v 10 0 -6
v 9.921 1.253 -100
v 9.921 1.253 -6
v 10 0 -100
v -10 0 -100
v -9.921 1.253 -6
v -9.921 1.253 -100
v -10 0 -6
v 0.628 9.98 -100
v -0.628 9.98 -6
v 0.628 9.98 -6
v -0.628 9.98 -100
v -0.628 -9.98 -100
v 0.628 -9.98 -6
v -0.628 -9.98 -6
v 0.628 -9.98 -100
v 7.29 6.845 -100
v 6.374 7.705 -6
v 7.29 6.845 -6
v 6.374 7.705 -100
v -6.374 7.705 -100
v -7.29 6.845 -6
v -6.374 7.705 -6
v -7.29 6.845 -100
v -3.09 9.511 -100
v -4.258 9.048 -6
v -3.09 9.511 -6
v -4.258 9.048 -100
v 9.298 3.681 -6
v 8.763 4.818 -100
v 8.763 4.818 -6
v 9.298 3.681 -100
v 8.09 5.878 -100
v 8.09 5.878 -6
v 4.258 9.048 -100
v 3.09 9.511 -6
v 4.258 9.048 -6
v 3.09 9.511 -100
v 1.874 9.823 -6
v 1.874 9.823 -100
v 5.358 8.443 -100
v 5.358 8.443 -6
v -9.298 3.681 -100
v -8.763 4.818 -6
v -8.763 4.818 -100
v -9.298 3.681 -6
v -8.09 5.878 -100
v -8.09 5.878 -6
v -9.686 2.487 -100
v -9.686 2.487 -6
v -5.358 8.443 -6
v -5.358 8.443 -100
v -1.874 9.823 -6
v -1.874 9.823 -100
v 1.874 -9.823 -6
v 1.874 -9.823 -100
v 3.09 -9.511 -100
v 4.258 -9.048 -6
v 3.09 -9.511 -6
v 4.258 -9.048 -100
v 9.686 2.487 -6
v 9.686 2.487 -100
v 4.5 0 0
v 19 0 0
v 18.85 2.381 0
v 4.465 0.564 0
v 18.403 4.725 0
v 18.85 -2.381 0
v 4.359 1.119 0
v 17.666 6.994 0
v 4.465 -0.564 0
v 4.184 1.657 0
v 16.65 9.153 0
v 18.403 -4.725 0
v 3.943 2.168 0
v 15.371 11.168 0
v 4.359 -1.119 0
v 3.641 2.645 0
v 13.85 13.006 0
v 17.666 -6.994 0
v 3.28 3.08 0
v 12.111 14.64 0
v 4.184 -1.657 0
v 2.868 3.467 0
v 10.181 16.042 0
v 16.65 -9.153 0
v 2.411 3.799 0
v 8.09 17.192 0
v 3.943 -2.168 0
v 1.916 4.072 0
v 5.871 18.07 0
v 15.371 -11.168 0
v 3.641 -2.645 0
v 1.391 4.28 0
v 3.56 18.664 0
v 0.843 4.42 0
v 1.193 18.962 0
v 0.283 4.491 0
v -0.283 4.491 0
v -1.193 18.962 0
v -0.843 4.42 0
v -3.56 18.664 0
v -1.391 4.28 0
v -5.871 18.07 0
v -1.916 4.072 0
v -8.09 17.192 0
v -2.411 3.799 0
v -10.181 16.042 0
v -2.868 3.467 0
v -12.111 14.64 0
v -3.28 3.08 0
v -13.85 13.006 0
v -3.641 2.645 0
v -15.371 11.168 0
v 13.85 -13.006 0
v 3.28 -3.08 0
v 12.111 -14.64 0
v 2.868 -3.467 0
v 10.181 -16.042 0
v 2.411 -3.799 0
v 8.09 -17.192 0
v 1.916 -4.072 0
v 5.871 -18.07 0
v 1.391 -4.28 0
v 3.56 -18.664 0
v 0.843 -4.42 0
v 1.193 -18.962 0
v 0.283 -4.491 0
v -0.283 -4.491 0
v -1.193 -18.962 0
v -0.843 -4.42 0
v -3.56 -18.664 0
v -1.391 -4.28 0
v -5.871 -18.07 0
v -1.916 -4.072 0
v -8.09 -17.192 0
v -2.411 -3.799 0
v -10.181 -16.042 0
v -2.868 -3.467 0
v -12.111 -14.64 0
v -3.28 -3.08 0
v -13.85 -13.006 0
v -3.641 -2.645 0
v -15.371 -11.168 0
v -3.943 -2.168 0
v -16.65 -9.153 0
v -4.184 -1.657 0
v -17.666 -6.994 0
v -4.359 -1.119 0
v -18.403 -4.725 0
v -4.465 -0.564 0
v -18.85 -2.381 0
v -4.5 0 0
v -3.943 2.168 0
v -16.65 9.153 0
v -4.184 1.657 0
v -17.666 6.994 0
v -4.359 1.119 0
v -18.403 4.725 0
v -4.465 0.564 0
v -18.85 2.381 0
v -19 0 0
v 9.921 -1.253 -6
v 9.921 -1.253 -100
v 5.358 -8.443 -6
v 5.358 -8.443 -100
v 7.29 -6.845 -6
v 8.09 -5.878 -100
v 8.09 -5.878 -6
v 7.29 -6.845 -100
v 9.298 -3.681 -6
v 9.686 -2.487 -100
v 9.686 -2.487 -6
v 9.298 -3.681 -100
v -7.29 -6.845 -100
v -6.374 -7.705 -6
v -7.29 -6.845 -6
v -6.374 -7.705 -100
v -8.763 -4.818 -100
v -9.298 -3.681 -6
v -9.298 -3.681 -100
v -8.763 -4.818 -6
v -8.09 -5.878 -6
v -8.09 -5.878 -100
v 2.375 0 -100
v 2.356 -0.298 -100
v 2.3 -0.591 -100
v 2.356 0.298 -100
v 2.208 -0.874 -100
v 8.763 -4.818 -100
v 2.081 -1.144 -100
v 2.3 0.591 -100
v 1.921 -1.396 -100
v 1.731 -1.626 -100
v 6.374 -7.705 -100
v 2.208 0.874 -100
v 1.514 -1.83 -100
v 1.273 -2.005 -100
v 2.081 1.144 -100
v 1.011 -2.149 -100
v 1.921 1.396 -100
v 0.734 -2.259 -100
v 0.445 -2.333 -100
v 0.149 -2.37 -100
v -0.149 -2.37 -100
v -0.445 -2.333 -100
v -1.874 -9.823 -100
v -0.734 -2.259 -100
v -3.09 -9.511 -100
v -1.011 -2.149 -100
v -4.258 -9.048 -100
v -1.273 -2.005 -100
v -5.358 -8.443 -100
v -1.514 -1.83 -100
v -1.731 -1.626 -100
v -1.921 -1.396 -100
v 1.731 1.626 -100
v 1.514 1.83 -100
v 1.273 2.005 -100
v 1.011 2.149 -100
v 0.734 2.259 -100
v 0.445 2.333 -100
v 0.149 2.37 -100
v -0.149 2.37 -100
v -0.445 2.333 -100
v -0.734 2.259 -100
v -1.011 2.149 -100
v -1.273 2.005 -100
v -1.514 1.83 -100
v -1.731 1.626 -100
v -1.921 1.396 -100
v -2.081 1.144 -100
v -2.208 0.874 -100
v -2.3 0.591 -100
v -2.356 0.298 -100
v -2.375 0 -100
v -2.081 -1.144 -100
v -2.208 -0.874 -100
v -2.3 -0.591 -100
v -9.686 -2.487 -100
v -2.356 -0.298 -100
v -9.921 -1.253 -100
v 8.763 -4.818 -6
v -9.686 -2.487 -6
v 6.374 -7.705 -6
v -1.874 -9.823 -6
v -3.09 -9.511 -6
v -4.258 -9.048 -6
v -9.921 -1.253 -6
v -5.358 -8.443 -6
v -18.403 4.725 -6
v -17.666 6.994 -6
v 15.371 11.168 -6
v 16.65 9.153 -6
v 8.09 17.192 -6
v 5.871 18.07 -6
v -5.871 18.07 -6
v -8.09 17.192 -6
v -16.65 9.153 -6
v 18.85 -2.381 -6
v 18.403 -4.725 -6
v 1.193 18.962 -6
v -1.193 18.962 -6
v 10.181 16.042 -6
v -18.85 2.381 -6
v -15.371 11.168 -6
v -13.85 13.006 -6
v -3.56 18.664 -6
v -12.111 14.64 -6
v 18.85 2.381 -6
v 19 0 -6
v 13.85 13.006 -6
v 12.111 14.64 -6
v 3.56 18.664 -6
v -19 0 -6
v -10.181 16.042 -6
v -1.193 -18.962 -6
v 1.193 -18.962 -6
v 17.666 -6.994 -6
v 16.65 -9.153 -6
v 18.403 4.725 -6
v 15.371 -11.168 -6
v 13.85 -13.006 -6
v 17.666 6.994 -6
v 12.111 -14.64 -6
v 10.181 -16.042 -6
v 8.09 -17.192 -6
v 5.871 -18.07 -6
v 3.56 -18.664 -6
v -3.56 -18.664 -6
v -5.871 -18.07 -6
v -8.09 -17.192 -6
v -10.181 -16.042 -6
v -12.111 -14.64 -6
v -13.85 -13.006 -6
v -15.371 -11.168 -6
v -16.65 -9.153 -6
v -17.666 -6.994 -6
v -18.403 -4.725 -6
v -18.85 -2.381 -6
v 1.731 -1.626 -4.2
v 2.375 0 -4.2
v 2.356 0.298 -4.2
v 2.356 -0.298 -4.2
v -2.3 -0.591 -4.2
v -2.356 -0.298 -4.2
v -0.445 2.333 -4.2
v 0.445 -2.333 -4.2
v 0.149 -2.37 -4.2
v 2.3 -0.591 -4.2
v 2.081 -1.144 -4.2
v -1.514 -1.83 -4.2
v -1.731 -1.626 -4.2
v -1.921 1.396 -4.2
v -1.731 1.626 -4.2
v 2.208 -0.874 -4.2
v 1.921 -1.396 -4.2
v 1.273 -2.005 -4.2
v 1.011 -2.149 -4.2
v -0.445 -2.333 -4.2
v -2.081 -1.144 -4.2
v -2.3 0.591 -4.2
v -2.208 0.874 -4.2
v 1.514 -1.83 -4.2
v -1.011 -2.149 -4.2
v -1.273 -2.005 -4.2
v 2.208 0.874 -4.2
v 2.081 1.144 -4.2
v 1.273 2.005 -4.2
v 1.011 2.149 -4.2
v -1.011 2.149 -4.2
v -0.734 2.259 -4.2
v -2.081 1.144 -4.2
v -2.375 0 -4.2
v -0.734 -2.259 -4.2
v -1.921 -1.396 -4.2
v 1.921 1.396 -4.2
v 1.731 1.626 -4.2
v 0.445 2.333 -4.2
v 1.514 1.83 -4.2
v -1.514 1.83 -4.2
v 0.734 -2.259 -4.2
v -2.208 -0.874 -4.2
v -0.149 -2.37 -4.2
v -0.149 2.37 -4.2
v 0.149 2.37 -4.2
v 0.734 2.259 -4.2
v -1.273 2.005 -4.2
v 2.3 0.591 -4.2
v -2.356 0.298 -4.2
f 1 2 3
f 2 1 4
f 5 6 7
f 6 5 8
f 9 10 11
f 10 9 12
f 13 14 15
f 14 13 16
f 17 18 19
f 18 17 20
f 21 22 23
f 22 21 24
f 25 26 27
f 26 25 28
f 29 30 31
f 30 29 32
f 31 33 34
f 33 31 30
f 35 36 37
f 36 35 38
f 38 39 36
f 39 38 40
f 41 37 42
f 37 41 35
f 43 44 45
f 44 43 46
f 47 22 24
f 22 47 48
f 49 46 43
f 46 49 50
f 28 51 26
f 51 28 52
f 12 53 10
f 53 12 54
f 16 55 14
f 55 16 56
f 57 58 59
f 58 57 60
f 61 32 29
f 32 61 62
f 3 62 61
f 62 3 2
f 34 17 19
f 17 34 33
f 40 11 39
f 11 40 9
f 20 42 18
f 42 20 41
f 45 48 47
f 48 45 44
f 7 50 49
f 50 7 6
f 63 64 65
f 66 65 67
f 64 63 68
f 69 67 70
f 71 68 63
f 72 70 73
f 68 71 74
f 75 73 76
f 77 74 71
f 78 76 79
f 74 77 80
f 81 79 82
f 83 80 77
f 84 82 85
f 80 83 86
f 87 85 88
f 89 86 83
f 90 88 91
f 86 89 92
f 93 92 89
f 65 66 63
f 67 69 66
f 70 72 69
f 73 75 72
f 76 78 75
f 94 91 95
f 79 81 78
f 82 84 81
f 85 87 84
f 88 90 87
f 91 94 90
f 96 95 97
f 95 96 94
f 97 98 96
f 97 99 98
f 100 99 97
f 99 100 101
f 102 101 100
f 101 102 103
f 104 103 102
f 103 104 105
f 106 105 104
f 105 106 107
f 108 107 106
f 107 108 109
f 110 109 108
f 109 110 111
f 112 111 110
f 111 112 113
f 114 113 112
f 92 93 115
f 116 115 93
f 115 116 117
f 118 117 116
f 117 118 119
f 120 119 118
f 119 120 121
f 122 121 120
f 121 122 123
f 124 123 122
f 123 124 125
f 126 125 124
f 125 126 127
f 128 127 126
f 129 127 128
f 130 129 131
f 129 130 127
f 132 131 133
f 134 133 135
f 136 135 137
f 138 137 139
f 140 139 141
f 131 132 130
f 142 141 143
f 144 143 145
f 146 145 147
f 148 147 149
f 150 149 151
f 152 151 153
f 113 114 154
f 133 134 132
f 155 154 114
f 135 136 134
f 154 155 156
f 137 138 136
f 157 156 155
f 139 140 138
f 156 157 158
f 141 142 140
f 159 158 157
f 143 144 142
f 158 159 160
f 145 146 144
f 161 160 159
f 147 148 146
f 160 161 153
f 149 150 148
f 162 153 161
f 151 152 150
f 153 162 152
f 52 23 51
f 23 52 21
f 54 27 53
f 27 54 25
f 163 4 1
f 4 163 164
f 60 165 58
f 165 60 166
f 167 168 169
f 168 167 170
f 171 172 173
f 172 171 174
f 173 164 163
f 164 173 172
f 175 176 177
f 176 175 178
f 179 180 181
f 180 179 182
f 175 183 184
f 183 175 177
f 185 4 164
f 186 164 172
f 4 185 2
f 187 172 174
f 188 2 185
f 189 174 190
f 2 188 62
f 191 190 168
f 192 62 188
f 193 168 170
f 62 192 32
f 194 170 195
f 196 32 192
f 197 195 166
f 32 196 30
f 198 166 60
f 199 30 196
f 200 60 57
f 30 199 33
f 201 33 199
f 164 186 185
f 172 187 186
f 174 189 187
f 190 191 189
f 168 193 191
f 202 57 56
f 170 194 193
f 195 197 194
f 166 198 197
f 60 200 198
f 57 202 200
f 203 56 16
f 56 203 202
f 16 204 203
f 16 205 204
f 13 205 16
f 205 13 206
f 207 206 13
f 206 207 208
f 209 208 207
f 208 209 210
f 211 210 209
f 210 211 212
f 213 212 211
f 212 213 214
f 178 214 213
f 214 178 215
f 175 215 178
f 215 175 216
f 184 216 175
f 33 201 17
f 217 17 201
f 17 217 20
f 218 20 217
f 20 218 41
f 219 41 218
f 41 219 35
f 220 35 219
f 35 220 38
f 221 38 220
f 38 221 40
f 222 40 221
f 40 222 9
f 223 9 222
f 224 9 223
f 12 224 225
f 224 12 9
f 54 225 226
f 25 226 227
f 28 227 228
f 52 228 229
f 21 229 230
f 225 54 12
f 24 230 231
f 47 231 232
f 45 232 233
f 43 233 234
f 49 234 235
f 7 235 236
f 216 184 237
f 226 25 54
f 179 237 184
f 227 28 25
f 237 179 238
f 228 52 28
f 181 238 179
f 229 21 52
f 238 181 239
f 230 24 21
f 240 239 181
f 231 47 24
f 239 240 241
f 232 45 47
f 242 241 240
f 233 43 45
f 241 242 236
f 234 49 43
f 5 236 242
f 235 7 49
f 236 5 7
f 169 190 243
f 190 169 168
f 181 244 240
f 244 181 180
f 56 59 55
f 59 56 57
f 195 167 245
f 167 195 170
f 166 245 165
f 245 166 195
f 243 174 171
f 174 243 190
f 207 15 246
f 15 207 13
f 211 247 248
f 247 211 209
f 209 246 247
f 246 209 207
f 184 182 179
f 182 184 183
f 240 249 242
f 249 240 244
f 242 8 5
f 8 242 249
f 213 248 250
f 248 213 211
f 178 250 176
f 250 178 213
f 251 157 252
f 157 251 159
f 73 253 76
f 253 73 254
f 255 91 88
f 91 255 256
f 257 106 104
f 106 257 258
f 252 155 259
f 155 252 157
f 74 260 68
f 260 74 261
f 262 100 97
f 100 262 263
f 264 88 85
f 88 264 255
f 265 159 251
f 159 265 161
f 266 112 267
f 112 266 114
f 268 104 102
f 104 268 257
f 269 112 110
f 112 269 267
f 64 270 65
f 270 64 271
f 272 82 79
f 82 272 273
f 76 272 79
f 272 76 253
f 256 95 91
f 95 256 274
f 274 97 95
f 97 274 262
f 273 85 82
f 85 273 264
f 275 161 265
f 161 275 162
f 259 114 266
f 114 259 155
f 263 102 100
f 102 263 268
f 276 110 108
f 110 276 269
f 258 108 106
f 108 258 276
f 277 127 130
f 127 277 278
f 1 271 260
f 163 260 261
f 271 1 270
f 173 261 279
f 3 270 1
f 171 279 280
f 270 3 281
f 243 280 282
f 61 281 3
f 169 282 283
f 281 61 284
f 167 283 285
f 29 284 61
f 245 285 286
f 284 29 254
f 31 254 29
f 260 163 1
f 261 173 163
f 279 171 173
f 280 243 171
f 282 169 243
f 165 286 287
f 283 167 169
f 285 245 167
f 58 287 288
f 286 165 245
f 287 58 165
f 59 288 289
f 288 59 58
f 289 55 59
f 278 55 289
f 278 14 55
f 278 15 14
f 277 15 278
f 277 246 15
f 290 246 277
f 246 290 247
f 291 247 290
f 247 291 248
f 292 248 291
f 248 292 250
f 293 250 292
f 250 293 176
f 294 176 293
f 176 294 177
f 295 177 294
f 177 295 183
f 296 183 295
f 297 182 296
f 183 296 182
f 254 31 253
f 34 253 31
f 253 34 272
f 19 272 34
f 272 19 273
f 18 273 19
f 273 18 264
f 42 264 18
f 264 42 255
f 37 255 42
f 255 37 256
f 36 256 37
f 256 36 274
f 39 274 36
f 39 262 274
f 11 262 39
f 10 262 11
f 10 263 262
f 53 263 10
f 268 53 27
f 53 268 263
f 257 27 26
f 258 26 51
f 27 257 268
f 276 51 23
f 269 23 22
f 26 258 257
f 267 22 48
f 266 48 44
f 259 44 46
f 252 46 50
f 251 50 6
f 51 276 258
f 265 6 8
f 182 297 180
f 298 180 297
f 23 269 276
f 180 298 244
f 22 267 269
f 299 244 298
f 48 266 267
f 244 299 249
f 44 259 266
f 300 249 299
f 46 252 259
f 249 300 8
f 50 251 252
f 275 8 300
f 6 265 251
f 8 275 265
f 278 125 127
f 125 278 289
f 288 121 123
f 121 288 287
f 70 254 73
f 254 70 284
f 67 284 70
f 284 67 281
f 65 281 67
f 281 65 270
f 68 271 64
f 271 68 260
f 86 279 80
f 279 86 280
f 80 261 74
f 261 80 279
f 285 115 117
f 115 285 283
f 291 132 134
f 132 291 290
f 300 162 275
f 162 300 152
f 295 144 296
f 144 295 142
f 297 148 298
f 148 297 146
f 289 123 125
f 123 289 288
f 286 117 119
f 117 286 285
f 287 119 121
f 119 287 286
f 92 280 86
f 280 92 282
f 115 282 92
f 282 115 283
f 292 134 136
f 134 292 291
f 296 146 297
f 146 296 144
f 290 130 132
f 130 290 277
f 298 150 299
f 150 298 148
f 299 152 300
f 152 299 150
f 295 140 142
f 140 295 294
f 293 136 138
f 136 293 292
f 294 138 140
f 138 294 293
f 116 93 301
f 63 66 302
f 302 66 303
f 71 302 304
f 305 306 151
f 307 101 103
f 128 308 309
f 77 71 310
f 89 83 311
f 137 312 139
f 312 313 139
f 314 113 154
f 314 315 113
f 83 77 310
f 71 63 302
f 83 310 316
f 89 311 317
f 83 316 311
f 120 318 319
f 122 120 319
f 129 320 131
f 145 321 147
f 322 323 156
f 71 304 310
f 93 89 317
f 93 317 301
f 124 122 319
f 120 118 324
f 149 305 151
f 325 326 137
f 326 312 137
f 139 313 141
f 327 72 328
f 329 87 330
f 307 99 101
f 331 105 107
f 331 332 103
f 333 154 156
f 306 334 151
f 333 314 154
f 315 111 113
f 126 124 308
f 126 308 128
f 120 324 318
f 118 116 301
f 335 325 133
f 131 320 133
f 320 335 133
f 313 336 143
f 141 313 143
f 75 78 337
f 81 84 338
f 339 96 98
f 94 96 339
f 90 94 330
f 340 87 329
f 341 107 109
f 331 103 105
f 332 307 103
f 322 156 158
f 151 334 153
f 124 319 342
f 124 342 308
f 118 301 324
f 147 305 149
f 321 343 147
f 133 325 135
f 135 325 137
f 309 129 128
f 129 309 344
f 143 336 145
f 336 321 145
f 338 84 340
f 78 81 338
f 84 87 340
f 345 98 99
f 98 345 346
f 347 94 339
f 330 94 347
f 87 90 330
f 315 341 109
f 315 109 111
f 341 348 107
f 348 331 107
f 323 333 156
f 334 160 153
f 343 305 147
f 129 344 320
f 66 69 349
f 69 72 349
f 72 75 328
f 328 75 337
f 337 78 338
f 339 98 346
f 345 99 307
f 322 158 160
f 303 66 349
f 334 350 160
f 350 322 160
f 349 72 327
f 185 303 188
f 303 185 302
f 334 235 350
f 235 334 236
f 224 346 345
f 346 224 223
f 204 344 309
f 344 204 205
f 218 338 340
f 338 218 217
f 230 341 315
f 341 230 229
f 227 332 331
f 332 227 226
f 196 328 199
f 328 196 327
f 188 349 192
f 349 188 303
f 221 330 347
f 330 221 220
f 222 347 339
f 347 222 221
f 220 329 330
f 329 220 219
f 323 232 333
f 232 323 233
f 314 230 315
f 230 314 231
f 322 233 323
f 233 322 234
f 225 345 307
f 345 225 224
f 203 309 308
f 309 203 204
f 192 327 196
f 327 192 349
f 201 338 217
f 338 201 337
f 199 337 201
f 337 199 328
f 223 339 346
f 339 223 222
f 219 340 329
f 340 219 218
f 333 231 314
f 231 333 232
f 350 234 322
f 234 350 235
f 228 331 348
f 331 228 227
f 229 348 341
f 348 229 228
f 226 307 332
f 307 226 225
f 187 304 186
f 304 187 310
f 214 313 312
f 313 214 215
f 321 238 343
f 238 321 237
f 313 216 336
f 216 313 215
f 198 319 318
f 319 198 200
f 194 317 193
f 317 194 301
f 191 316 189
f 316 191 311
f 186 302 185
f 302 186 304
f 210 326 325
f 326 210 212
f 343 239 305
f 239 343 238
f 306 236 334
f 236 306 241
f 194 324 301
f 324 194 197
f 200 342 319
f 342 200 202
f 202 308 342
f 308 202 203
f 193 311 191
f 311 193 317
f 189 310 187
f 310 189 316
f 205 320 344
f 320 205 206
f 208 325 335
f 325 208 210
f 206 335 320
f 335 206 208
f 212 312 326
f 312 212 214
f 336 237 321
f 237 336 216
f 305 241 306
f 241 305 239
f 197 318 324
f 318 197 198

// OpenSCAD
$fn = 50;


difference() {
	union() {
		translate(v = [0, 0, -100.0000000000]) {
			cylinder(h = 100, r = 10.0000000000);
		}
		translate(v = [0, 0, -6.0000000000]) {
			cylinder(h = 6, r = 19.0000000000);
		}
	}
	union() {
		translate(v = [0, 0, 0]) {
			rotate(a = [0, 0, 0]) {
				difference() {
					union() {
						#translate(v = [0, 0, -100.0000000000]) {
							cylinder(h = 100, r = 2.2500000000);
						}
						#translate(v = [0, 0, -4.2000000000]) {
							cylinder(h = 4.2000000000, r1 = 2.3750000000, r2 = 4.5000000000);
						}
						#translate(v = [0, 0, -100.0000000000]) {
							cylinder(h = 100, r = 2.3750000000);
						}
						#translate(v = [0, 0, -100.0000000000]) {
							cylinder(h = 100, r = 2.2500000000);
						}
					}
					union();
				}
			}
		}
	}
}
